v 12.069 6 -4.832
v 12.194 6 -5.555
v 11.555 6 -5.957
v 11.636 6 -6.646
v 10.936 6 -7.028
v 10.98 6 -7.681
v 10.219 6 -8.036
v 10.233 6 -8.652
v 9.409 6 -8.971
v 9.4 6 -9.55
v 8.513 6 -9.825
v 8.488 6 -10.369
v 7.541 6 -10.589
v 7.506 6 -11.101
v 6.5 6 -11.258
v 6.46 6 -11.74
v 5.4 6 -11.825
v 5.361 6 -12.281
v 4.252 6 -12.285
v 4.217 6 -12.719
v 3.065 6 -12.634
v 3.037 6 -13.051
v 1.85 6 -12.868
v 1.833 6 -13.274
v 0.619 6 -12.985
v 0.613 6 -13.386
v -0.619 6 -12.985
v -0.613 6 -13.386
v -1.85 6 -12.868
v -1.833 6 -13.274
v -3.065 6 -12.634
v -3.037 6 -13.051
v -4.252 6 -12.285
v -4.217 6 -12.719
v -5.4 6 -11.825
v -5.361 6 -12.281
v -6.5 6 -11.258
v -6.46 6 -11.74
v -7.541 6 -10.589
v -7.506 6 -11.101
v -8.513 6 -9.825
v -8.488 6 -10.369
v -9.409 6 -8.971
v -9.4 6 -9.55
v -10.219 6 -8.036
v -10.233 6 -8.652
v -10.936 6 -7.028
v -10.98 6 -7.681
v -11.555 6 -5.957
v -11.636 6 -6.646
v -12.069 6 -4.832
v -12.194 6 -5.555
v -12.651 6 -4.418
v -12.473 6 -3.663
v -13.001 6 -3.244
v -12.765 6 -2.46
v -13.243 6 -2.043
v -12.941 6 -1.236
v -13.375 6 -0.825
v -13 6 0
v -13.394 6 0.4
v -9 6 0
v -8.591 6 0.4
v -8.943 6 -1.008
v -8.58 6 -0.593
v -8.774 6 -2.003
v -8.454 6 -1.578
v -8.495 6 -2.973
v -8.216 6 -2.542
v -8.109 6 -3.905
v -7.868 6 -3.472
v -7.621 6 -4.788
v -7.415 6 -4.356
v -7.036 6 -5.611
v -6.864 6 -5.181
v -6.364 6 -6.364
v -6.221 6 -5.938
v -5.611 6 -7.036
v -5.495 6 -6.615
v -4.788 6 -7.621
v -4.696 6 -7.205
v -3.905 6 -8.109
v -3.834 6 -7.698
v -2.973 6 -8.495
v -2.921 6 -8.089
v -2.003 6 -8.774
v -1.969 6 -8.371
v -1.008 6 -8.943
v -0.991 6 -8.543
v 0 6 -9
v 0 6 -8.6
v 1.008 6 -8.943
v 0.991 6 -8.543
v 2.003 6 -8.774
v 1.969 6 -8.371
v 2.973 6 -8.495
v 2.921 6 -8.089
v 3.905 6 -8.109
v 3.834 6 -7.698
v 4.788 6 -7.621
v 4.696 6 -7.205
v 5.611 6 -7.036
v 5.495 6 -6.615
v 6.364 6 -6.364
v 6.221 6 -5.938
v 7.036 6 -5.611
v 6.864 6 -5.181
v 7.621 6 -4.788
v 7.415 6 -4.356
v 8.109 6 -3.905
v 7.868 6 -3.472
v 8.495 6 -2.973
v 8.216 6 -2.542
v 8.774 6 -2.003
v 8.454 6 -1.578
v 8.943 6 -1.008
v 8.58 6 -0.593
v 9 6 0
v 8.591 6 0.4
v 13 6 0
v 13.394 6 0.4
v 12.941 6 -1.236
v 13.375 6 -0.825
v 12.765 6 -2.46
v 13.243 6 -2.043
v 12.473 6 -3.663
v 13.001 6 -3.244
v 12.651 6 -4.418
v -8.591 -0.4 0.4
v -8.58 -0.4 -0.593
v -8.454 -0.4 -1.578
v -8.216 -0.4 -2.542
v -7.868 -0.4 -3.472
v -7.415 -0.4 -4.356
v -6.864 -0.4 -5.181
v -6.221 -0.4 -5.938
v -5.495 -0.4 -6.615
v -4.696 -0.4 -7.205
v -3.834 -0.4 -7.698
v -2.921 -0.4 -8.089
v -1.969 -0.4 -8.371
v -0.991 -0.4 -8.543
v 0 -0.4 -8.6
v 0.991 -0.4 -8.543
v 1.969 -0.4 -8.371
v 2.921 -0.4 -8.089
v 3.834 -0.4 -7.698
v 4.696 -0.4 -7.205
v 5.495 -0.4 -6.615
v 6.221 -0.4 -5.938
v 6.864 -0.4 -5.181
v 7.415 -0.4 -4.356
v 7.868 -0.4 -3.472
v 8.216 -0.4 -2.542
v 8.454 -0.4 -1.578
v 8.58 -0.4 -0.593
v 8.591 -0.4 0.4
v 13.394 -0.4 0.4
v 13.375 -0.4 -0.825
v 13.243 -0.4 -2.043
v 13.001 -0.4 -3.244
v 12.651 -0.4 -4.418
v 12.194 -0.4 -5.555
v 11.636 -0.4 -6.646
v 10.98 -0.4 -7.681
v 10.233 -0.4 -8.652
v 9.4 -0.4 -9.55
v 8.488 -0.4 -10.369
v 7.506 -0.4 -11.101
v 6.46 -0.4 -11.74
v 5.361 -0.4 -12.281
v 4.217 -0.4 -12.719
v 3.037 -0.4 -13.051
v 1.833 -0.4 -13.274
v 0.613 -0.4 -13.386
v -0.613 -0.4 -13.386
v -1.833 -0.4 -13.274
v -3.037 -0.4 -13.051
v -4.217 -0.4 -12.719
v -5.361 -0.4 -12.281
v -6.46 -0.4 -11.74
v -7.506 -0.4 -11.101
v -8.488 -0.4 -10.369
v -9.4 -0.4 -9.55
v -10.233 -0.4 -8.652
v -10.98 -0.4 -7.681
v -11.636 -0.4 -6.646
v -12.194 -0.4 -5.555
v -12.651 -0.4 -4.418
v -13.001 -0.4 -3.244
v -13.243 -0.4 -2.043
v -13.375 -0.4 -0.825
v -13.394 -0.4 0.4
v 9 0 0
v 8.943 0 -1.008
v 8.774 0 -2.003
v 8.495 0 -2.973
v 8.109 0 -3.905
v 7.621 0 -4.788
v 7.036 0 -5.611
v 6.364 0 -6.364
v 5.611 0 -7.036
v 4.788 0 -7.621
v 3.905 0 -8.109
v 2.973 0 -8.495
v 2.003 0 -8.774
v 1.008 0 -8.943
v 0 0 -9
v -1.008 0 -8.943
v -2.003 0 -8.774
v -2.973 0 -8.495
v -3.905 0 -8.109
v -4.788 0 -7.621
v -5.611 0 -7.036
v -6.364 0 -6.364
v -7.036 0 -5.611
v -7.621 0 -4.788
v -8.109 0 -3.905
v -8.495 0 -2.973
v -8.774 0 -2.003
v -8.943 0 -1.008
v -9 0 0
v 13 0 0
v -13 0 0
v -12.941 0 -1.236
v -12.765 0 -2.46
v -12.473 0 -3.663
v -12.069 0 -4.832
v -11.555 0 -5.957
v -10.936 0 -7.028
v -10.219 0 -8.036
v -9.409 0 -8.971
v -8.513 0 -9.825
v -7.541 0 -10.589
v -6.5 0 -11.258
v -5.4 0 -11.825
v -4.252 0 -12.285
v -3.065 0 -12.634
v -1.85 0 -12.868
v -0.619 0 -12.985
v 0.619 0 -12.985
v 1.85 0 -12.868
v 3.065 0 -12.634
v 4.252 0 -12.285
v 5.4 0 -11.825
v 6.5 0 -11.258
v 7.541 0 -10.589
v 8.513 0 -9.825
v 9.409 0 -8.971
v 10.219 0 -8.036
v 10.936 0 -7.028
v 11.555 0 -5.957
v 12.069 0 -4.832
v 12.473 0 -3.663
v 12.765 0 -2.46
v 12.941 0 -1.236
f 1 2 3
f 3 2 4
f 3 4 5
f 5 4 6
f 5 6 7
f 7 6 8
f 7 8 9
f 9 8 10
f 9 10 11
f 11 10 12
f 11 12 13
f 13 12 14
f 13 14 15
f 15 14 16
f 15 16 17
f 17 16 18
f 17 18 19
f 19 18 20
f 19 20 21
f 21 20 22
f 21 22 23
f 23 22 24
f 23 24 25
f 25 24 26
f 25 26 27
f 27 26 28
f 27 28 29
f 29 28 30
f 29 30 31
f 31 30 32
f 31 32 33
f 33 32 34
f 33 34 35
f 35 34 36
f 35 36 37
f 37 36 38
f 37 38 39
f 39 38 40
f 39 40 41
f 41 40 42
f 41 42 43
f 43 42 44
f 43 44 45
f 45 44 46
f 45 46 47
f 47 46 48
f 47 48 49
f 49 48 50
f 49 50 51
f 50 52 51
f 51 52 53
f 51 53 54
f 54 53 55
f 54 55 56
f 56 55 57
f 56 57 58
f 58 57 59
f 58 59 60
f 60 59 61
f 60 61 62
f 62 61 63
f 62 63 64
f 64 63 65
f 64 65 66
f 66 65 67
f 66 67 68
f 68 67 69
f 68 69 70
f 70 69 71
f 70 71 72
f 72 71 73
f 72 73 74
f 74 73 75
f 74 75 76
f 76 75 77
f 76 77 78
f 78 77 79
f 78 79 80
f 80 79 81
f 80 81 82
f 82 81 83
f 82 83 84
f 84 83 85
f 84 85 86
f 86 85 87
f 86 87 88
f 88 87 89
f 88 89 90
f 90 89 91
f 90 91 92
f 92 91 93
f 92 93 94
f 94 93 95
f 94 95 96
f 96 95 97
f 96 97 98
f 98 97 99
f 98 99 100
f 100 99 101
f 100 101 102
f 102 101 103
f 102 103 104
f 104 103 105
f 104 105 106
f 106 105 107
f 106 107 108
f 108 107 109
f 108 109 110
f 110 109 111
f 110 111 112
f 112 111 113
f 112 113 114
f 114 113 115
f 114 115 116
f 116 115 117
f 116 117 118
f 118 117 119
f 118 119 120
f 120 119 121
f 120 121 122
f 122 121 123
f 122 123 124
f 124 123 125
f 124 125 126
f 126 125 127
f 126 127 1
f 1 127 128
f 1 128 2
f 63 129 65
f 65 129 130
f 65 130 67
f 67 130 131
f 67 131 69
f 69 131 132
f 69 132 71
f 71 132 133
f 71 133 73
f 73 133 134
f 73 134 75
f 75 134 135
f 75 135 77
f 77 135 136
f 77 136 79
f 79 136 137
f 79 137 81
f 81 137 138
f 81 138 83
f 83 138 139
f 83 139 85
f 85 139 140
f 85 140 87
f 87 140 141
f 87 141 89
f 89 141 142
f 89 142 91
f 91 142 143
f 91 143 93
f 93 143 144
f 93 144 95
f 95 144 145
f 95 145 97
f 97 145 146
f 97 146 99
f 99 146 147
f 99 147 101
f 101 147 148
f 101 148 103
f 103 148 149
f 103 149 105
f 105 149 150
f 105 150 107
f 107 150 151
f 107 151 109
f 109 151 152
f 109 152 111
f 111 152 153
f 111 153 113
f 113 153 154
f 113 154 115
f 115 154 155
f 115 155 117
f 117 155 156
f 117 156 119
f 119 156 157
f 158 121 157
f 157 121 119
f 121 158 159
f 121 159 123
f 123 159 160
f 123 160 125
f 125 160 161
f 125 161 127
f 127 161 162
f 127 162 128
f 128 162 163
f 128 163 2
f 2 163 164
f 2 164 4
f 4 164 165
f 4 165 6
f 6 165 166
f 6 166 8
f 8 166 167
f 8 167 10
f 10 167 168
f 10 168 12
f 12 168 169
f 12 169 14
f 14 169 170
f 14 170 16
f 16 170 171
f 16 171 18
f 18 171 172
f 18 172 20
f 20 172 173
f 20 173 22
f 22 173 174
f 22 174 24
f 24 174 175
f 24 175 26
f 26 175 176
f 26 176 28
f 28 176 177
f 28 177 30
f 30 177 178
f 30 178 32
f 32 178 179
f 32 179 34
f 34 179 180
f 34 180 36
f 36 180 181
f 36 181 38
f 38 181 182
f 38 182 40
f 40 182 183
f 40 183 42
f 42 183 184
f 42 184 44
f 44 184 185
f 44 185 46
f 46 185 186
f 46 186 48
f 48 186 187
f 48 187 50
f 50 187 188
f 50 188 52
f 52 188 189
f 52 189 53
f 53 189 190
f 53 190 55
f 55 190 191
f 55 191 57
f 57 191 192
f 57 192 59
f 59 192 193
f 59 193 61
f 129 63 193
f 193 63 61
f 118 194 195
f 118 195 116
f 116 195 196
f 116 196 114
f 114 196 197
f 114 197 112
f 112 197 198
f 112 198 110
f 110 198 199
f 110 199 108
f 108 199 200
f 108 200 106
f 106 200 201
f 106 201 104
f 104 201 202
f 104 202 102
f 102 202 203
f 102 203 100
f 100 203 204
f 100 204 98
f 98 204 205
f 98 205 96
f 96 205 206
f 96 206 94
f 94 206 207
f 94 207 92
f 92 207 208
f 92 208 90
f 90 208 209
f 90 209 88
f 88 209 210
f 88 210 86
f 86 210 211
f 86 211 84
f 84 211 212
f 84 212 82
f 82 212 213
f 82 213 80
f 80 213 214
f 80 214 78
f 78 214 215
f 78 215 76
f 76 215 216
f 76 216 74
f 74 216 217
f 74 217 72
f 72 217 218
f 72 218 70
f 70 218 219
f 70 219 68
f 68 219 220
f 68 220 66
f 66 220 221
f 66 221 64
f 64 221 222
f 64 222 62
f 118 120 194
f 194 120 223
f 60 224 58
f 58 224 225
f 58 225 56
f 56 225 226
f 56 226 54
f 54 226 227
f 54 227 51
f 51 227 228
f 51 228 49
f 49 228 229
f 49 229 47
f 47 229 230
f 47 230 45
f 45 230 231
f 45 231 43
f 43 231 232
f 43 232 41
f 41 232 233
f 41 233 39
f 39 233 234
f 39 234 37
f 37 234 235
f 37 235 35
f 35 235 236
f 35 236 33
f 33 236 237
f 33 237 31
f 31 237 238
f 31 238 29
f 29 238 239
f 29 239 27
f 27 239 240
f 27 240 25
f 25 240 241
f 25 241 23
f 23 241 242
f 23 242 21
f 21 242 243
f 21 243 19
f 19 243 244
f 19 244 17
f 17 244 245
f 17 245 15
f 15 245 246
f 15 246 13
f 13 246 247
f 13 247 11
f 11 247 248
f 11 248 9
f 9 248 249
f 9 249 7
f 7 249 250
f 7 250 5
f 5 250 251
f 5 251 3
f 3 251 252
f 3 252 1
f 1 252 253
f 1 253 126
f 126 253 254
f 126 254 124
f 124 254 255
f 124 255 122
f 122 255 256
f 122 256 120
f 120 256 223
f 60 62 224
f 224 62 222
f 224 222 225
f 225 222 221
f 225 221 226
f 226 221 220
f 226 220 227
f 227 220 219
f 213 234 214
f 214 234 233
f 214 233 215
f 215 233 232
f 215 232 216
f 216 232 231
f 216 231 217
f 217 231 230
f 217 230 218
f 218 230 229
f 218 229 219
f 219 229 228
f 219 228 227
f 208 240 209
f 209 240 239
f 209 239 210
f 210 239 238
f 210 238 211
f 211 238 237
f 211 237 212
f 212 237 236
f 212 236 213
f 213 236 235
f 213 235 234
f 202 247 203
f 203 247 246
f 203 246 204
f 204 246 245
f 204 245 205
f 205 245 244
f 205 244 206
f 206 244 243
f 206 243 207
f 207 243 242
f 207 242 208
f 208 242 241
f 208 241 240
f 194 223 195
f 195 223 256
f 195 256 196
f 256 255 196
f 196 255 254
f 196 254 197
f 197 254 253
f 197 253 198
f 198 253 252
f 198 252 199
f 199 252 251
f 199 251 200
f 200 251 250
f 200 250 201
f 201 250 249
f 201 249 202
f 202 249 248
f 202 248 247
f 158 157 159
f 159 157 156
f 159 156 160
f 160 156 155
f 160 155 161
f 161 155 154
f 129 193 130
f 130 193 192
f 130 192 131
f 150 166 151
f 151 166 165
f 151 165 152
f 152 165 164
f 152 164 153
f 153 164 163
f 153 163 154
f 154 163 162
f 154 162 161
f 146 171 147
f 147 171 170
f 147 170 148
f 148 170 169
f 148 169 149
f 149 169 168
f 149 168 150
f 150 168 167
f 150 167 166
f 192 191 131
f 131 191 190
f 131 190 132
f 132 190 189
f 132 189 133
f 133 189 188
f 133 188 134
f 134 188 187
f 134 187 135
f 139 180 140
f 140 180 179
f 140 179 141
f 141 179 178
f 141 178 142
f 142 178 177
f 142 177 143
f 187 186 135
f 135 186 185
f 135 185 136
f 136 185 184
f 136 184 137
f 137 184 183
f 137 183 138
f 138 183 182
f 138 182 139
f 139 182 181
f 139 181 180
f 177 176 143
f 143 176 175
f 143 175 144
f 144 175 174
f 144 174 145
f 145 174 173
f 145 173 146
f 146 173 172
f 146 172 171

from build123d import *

# Parameters (mm, degrees)
BOSS_EXTRUDE1_DEPTH = 6
BOSS_EXTRUDE2_DEPTH = 0.4


with BuildPart() as part:
    # Sketch3 → Boss-Extrude1 (new body)
    with BuildSketch(Plane(origin=(0, 0, 0), x_dir=(1, 0, 0), z_dir=(0, 1, 0))):
        with BuildLine():
            Line((8.590692638, -0.4), (13.39402852, -0.4))
            ThreePointArc((13.39402852, -0.4), (0, 13.4), (-13.39402852, -0.4))
            Line((-13.39402852, -0.4), (-8.590692638, -0.4))
            ThreePointArc((-8.590692638, -0.4), (0, 8.6), (8.590692638, -0.4))
        make_face()
        with BuildLine():
            Line((9, 0), (13, 0))
            ThreePointArc((13, 0), (0, 13), (-13, 0))
            Line((-13, 0), (-9, 0))
            ThreePointArc((-9, 0), (0, 9), (9, 0))
        make_face(mode=Mode.SUBTRACT)
    extrude(amount=BOSS_EXTRUDE1_DEPTH)

    # Sketch4 → Boss-Extrude2 (add)
    with BuildSketch(Plane.XZ):
        with BuildLine():
            Line((8.590692638, 0.4), (13.39402852, 0.4))
            ThreePointArc((13.39402852, 0.4), (0, -13.4), (-13.39402852, 0.4))
            Line((-13.39402852, 0.4), (-8.590692638, 0.4))
            ThreePointArc((-8.590692638, 0.4), (0, -8.6), (8.590692638, 0.4))
        make_face()
    extrude(amount=BOSS_EXTRUDE2_DEPTH)


solid = part.part
